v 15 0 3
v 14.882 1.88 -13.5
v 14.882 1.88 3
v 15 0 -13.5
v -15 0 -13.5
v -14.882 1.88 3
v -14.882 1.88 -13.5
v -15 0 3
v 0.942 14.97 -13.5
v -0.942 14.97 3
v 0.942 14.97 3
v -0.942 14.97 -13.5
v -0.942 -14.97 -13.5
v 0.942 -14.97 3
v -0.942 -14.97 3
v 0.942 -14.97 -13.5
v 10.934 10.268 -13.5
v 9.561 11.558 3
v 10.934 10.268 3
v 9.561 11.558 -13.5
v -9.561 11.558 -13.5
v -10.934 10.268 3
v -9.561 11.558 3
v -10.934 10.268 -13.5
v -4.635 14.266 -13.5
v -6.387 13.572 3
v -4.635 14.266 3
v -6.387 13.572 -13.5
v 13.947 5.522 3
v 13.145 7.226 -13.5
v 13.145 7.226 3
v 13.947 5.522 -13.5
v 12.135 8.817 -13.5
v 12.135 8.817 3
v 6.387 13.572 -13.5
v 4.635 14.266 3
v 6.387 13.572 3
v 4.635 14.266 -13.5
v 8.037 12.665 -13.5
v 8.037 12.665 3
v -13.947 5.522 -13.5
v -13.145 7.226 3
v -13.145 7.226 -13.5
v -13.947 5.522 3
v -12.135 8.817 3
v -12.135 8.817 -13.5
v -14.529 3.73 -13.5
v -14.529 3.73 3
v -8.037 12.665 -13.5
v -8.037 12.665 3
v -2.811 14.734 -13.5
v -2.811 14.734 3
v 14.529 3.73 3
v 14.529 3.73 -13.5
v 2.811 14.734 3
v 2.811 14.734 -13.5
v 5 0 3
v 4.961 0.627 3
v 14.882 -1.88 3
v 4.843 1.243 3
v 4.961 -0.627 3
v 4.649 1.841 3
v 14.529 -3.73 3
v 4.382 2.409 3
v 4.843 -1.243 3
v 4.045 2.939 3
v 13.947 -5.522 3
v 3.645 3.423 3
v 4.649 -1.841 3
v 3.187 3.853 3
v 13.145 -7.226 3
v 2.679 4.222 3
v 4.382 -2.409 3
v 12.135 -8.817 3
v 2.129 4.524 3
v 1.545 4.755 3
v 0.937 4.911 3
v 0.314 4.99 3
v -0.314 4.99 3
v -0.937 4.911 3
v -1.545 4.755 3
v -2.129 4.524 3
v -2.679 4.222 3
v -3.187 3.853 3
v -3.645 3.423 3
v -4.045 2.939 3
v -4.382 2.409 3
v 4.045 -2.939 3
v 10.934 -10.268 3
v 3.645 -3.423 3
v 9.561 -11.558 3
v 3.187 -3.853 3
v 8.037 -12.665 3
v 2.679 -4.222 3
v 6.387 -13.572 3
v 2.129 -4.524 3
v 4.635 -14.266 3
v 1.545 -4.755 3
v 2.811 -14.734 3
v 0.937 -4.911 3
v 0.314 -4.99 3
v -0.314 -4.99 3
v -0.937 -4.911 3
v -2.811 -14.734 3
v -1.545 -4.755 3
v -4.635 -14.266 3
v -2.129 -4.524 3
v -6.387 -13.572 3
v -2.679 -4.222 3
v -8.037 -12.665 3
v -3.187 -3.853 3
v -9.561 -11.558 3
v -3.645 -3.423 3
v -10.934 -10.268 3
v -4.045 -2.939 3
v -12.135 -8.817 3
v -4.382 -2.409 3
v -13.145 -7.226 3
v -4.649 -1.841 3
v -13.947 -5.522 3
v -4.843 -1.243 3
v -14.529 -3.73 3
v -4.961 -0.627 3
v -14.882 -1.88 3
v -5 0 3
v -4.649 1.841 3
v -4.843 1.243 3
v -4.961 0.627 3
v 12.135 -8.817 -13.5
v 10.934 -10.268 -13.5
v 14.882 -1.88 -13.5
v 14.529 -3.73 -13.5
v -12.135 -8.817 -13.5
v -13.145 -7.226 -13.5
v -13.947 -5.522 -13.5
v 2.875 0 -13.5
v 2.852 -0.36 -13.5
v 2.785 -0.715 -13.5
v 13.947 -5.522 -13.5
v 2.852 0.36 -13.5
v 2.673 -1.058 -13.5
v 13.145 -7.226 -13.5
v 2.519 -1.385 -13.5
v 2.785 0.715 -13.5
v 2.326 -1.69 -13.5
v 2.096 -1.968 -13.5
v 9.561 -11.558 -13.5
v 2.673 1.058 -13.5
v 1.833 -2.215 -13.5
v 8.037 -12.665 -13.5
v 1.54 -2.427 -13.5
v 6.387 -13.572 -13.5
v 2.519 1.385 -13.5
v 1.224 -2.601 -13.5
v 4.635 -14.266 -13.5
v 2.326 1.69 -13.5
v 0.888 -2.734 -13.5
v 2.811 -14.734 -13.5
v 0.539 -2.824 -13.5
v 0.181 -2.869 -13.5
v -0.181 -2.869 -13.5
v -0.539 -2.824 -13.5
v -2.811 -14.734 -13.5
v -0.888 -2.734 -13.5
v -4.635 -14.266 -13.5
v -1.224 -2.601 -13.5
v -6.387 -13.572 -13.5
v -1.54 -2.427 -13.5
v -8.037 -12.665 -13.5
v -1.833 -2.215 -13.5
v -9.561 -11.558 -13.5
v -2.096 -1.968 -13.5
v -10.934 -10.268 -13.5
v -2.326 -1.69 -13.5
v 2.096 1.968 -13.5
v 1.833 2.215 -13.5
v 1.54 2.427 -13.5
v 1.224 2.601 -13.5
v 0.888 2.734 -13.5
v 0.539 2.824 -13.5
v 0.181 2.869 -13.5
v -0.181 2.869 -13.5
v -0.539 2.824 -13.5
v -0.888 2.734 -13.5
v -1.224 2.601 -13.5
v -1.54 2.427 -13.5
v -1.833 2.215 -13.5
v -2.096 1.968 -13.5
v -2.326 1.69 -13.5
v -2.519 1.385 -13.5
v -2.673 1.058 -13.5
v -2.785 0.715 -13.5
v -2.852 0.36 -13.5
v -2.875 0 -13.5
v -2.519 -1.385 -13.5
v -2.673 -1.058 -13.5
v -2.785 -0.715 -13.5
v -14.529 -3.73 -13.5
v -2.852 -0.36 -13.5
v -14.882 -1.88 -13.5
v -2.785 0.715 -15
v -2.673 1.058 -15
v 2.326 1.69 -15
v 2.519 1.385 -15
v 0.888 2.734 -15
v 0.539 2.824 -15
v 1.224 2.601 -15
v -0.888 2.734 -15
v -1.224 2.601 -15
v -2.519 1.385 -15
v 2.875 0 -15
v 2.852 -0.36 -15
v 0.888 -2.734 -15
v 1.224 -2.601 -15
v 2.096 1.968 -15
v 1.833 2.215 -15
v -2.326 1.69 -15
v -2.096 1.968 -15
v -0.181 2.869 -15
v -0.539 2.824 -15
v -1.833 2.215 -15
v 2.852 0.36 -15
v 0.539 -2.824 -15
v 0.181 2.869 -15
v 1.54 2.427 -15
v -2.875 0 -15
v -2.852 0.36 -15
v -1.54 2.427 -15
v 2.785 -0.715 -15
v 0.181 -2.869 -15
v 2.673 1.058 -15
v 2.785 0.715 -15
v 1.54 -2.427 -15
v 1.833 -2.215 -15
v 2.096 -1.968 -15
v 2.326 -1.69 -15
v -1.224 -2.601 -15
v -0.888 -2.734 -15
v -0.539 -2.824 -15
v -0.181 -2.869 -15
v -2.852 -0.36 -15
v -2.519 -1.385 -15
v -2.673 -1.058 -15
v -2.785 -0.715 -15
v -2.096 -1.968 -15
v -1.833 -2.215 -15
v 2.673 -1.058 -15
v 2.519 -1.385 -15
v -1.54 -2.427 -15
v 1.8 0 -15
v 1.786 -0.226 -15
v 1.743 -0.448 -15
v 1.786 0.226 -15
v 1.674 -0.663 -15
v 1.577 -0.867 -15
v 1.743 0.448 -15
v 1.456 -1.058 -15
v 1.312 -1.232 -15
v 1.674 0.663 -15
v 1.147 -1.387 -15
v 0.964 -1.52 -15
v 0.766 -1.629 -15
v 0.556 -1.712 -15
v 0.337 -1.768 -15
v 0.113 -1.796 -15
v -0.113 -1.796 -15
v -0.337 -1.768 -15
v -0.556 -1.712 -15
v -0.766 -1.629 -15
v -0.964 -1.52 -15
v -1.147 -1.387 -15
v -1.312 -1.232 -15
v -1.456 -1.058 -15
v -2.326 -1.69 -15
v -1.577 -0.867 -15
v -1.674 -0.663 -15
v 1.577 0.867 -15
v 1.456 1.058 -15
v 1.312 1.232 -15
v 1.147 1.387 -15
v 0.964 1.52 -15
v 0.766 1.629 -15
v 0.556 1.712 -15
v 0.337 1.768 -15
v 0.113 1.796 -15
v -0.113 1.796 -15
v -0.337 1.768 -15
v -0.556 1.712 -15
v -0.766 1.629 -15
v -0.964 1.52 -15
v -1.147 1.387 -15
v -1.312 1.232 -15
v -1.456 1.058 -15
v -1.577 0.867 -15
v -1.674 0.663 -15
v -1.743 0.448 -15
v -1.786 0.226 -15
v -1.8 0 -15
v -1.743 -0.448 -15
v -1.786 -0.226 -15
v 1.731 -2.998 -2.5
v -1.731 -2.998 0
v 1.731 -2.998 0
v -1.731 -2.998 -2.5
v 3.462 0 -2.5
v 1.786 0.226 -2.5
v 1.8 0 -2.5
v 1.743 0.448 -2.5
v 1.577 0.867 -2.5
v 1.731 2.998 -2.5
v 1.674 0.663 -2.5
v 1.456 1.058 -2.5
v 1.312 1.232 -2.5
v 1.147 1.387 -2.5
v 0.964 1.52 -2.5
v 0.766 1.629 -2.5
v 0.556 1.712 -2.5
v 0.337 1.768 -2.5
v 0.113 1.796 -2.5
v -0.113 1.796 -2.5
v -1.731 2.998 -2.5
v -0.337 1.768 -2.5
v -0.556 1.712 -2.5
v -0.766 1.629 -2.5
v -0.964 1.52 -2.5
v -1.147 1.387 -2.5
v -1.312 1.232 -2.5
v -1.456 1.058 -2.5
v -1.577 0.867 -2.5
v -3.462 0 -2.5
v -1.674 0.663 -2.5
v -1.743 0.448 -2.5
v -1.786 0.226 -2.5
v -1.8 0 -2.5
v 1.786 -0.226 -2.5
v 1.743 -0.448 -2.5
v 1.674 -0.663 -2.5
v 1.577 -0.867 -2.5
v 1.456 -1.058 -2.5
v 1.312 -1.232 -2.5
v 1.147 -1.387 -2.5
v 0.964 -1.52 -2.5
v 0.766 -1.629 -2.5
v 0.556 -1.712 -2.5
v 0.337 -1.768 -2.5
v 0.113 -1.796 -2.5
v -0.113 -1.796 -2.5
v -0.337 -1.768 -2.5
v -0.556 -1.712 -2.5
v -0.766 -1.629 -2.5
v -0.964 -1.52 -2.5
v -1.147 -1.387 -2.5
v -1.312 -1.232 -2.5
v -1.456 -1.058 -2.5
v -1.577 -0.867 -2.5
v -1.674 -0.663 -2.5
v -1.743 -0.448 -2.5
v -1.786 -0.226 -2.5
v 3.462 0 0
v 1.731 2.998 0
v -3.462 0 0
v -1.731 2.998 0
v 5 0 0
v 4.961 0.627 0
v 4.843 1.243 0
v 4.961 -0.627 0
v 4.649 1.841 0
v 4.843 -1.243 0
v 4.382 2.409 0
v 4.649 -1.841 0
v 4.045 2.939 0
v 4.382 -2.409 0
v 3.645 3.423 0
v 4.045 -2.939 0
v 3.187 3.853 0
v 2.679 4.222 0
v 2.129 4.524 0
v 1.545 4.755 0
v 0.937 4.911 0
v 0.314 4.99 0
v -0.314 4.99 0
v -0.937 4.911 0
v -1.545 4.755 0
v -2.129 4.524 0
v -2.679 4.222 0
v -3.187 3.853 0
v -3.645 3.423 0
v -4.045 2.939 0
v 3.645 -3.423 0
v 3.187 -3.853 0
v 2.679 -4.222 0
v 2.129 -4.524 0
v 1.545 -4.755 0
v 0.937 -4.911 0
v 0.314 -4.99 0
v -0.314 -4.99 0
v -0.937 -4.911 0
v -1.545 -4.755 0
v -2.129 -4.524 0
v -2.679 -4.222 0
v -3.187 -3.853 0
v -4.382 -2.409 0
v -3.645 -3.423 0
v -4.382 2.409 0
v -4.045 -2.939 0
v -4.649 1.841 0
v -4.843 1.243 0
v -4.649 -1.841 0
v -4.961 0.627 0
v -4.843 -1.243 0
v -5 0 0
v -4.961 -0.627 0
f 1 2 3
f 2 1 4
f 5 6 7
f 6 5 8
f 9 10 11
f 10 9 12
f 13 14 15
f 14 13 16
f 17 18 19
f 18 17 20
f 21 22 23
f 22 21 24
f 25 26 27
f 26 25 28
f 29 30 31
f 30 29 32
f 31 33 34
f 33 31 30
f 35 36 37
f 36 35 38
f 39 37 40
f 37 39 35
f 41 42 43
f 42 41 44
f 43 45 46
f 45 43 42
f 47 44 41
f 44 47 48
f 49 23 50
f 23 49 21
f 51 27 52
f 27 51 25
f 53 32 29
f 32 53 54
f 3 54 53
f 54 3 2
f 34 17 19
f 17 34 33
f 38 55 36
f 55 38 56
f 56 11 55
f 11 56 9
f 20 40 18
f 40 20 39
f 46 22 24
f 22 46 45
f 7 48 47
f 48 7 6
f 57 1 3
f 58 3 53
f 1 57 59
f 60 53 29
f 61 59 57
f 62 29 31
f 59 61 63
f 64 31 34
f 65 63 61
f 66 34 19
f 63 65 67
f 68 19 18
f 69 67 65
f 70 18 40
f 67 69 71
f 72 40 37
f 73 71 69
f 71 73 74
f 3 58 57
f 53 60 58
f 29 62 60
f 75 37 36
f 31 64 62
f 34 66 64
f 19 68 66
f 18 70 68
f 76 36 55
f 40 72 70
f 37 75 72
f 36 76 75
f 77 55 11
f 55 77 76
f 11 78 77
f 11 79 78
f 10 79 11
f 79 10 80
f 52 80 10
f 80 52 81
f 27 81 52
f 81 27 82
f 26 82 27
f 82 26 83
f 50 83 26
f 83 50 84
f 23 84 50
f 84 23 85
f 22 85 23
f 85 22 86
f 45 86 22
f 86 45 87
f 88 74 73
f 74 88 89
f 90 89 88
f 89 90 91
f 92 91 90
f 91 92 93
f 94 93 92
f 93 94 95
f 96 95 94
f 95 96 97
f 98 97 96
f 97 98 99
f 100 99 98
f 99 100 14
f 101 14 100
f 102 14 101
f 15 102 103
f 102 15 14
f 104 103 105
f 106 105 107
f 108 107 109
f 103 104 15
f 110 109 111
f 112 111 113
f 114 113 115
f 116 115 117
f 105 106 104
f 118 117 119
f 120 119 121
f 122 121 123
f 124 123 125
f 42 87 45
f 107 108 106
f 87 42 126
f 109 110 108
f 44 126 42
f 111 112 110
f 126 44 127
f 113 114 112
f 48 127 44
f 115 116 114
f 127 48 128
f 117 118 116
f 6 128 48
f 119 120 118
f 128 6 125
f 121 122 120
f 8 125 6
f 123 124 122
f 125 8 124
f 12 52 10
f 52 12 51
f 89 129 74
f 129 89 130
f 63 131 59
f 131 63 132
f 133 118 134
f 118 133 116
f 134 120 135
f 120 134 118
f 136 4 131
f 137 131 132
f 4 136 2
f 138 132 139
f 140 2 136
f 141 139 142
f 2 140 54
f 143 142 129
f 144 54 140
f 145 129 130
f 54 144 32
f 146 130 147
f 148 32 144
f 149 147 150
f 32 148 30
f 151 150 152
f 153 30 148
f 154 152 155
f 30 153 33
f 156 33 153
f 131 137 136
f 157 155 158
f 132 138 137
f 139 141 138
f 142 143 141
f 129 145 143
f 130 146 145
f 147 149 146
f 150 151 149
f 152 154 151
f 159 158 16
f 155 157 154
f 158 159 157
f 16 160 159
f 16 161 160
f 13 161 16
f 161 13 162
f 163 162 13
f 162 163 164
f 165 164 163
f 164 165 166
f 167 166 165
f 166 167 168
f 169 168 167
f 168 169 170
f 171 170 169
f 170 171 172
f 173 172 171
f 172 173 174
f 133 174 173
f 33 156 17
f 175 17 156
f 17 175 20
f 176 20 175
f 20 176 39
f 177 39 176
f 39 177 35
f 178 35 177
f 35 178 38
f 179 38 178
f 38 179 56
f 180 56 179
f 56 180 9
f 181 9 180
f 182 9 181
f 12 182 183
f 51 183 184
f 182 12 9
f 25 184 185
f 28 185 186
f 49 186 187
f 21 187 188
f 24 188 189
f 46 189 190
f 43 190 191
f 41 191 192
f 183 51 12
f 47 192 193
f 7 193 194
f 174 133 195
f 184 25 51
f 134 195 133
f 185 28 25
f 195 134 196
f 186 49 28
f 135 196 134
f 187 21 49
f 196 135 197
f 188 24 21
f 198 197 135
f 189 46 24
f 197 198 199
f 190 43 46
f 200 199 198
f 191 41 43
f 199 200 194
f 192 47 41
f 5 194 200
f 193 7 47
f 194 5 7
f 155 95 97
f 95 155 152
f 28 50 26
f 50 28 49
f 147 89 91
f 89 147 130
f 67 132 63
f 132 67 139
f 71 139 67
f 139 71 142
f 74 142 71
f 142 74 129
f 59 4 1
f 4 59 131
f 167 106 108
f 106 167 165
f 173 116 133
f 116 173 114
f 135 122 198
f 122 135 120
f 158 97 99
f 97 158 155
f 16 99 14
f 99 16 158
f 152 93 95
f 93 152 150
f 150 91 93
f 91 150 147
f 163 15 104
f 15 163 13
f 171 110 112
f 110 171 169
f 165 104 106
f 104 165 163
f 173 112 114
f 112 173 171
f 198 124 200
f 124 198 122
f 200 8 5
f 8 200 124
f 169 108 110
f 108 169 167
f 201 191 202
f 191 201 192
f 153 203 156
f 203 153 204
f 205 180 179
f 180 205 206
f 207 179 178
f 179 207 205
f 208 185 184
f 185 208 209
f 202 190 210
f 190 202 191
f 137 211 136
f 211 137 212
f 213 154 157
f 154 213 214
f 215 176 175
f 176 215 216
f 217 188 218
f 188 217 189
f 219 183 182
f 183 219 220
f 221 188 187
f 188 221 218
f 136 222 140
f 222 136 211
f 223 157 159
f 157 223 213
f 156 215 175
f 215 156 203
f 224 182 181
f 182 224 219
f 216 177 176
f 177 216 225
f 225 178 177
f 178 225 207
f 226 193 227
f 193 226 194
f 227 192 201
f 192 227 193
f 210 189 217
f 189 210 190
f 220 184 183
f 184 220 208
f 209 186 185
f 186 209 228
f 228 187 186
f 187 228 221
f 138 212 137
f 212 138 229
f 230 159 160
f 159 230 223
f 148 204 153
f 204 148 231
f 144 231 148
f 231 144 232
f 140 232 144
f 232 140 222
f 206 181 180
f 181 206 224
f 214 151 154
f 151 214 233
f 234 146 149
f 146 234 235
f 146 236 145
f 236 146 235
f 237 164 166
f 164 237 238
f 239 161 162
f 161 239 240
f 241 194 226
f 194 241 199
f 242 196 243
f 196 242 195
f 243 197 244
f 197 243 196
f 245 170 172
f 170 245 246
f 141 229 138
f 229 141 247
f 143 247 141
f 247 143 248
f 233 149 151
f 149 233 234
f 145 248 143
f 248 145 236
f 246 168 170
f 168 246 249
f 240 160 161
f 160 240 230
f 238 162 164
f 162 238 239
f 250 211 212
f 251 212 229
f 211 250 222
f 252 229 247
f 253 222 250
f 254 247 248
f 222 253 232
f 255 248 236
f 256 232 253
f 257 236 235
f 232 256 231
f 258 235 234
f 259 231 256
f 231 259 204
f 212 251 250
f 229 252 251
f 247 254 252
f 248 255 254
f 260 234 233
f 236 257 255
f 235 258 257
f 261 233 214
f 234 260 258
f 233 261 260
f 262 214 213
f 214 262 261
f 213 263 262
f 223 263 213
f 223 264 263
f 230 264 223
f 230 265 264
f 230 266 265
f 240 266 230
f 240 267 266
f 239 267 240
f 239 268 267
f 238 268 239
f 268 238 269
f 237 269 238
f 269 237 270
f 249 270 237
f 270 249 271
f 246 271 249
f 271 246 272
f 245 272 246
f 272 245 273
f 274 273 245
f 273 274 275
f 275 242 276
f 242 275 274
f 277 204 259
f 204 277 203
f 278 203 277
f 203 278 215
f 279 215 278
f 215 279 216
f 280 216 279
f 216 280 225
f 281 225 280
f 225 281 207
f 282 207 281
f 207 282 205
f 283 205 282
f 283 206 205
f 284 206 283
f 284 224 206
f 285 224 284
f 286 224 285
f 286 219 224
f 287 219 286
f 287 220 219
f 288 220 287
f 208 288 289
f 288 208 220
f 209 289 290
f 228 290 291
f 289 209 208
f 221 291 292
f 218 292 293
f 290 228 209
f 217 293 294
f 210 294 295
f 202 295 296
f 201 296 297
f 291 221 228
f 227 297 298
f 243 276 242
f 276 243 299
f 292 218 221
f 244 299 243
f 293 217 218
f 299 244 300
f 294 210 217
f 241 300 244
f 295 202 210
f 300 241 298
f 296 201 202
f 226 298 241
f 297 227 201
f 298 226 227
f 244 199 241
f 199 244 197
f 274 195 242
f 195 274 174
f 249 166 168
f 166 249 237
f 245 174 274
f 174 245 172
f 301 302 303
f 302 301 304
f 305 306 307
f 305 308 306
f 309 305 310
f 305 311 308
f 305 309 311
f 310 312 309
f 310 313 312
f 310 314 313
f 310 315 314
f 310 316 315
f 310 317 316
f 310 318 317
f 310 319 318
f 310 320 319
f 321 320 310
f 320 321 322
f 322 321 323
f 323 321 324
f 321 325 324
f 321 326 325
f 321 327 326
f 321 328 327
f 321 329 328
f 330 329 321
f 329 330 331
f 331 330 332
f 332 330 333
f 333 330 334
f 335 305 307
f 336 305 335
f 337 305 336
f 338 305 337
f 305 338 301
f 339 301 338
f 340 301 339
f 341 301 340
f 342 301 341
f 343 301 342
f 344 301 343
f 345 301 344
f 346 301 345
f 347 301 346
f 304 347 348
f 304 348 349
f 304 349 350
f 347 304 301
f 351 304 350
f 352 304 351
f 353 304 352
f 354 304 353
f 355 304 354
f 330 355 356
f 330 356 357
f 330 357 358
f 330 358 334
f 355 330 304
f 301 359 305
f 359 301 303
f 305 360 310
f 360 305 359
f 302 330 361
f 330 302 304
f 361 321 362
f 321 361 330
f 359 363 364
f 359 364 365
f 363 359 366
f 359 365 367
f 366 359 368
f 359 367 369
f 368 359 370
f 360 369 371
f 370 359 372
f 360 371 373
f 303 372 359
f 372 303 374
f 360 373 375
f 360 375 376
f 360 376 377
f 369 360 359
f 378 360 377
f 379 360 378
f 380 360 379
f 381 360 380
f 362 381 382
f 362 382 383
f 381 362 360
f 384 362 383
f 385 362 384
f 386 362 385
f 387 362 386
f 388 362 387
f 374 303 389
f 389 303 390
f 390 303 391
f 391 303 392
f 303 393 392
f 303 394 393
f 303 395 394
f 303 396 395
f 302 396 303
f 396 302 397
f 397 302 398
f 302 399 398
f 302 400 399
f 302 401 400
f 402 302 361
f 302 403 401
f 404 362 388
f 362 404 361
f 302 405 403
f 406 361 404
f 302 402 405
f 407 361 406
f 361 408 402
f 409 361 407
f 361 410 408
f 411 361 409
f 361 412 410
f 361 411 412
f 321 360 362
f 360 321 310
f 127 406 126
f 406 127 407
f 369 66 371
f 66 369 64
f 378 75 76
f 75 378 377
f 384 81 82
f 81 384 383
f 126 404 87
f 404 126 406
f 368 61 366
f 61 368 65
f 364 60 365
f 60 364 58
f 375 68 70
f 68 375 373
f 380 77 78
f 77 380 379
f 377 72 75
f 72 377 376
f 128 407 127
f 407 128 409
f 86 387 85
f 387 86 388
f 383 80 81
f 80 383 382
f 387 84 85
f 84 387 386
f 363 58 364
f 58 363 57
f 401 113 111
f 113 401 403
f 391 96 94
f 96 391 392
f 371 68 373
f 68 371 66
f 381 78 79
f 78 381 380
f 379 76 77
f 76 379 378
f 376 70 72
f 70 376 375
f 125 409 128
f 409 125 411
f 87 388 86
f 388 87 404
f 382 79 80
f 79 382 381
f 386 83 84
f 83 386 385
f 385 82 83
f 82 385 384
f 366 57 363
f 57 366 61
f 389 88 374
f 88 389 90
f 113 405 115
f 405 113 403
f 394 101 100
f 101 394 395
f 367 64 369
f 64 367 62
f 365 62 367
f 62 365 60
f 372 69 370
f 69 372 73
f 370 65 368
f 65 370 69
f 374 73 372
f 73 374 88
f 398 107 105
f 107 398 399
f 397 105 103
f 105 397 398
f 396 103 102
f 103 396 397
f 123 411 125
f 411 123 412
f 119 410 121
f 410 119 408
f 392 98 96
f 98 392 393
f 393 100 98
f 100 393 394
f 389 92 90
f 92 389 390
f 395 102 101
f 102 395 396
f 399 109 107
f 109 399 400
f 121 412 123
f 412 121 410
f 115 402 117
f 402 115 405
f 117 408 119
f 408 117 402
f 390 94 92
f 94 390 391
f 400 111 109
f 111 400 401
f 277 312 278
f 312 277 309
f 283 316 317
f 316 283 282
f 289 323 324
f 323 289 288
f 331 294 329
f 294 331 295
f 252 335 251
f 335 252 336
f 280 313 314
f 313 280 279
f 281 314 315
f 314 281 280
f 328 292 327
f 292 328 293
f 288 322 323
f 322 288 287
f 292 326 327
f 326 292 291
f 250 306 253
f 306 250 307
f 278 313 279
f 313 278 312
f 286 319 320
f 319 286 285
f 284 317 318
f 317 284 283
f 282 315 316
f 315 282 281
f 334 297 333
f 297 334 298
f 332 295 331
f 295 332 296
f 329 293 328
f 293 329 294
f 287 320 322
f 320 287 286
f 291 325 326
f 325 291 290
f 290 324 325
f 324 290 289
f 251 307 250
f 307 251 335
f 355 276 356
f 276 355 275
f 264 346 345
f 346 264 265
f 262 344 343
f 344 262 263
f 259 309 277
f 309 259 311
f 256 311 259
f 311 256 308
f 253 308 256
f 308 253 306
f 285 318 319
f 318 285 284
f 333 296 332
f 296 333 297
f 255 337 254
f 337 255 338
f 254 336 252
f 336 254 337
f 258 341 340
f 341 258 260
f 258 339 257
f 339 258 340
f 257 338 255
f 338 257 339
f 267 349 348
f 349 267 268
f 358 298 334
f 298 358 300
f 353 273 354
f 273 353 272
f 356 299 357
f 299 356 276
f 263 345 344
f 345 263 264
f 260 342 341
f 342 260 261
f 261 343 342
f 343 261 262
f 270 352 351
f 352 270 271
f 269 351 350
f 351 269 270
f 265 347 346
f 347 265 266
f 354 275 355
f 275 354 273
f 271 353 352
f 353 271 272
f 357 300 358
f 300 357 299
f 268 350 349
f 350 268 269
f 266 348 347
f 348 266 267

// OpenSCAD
$fn = 50;


difference() {
	union() {
		translate(v = [0, 0, -13.5000000000]) {
			cylinder(h = 16.5000000000, r = 15.0000000000);
		}
		#translate(v = [0, 0, -15.0000000000]) {
			cylinder(h = 15, r = 2.8750000000);
		}
	}
	union() {
		translate(v = [0, 0, 0]) {
			rotate(a = [0, 0, 0]) {
				difference() {
					union() {
						translate(v = [0, 0, -2.5000000000]) {
							linear_extrude(height = 2.5000000000) {
								polygon(points = [[3.4620000000, 0.0000000000], [1.7310000000, 2.9981799479], [-1.7310000000, 2.9981799479], [-3.4620000000, 0.0000000000], [-1.7310000000, -2.9981799479], [1.7310000000, -2.9981799479]]);
							}
						}
					}
					union();
				}
			}
		}
		#cylinder(h = 3, r = 5.0000000000);
		#translate(v = [0, 0, -100.0000000000]) {
			cylinder(h = 200, r = 1.8000000000);
		}
	}
}
